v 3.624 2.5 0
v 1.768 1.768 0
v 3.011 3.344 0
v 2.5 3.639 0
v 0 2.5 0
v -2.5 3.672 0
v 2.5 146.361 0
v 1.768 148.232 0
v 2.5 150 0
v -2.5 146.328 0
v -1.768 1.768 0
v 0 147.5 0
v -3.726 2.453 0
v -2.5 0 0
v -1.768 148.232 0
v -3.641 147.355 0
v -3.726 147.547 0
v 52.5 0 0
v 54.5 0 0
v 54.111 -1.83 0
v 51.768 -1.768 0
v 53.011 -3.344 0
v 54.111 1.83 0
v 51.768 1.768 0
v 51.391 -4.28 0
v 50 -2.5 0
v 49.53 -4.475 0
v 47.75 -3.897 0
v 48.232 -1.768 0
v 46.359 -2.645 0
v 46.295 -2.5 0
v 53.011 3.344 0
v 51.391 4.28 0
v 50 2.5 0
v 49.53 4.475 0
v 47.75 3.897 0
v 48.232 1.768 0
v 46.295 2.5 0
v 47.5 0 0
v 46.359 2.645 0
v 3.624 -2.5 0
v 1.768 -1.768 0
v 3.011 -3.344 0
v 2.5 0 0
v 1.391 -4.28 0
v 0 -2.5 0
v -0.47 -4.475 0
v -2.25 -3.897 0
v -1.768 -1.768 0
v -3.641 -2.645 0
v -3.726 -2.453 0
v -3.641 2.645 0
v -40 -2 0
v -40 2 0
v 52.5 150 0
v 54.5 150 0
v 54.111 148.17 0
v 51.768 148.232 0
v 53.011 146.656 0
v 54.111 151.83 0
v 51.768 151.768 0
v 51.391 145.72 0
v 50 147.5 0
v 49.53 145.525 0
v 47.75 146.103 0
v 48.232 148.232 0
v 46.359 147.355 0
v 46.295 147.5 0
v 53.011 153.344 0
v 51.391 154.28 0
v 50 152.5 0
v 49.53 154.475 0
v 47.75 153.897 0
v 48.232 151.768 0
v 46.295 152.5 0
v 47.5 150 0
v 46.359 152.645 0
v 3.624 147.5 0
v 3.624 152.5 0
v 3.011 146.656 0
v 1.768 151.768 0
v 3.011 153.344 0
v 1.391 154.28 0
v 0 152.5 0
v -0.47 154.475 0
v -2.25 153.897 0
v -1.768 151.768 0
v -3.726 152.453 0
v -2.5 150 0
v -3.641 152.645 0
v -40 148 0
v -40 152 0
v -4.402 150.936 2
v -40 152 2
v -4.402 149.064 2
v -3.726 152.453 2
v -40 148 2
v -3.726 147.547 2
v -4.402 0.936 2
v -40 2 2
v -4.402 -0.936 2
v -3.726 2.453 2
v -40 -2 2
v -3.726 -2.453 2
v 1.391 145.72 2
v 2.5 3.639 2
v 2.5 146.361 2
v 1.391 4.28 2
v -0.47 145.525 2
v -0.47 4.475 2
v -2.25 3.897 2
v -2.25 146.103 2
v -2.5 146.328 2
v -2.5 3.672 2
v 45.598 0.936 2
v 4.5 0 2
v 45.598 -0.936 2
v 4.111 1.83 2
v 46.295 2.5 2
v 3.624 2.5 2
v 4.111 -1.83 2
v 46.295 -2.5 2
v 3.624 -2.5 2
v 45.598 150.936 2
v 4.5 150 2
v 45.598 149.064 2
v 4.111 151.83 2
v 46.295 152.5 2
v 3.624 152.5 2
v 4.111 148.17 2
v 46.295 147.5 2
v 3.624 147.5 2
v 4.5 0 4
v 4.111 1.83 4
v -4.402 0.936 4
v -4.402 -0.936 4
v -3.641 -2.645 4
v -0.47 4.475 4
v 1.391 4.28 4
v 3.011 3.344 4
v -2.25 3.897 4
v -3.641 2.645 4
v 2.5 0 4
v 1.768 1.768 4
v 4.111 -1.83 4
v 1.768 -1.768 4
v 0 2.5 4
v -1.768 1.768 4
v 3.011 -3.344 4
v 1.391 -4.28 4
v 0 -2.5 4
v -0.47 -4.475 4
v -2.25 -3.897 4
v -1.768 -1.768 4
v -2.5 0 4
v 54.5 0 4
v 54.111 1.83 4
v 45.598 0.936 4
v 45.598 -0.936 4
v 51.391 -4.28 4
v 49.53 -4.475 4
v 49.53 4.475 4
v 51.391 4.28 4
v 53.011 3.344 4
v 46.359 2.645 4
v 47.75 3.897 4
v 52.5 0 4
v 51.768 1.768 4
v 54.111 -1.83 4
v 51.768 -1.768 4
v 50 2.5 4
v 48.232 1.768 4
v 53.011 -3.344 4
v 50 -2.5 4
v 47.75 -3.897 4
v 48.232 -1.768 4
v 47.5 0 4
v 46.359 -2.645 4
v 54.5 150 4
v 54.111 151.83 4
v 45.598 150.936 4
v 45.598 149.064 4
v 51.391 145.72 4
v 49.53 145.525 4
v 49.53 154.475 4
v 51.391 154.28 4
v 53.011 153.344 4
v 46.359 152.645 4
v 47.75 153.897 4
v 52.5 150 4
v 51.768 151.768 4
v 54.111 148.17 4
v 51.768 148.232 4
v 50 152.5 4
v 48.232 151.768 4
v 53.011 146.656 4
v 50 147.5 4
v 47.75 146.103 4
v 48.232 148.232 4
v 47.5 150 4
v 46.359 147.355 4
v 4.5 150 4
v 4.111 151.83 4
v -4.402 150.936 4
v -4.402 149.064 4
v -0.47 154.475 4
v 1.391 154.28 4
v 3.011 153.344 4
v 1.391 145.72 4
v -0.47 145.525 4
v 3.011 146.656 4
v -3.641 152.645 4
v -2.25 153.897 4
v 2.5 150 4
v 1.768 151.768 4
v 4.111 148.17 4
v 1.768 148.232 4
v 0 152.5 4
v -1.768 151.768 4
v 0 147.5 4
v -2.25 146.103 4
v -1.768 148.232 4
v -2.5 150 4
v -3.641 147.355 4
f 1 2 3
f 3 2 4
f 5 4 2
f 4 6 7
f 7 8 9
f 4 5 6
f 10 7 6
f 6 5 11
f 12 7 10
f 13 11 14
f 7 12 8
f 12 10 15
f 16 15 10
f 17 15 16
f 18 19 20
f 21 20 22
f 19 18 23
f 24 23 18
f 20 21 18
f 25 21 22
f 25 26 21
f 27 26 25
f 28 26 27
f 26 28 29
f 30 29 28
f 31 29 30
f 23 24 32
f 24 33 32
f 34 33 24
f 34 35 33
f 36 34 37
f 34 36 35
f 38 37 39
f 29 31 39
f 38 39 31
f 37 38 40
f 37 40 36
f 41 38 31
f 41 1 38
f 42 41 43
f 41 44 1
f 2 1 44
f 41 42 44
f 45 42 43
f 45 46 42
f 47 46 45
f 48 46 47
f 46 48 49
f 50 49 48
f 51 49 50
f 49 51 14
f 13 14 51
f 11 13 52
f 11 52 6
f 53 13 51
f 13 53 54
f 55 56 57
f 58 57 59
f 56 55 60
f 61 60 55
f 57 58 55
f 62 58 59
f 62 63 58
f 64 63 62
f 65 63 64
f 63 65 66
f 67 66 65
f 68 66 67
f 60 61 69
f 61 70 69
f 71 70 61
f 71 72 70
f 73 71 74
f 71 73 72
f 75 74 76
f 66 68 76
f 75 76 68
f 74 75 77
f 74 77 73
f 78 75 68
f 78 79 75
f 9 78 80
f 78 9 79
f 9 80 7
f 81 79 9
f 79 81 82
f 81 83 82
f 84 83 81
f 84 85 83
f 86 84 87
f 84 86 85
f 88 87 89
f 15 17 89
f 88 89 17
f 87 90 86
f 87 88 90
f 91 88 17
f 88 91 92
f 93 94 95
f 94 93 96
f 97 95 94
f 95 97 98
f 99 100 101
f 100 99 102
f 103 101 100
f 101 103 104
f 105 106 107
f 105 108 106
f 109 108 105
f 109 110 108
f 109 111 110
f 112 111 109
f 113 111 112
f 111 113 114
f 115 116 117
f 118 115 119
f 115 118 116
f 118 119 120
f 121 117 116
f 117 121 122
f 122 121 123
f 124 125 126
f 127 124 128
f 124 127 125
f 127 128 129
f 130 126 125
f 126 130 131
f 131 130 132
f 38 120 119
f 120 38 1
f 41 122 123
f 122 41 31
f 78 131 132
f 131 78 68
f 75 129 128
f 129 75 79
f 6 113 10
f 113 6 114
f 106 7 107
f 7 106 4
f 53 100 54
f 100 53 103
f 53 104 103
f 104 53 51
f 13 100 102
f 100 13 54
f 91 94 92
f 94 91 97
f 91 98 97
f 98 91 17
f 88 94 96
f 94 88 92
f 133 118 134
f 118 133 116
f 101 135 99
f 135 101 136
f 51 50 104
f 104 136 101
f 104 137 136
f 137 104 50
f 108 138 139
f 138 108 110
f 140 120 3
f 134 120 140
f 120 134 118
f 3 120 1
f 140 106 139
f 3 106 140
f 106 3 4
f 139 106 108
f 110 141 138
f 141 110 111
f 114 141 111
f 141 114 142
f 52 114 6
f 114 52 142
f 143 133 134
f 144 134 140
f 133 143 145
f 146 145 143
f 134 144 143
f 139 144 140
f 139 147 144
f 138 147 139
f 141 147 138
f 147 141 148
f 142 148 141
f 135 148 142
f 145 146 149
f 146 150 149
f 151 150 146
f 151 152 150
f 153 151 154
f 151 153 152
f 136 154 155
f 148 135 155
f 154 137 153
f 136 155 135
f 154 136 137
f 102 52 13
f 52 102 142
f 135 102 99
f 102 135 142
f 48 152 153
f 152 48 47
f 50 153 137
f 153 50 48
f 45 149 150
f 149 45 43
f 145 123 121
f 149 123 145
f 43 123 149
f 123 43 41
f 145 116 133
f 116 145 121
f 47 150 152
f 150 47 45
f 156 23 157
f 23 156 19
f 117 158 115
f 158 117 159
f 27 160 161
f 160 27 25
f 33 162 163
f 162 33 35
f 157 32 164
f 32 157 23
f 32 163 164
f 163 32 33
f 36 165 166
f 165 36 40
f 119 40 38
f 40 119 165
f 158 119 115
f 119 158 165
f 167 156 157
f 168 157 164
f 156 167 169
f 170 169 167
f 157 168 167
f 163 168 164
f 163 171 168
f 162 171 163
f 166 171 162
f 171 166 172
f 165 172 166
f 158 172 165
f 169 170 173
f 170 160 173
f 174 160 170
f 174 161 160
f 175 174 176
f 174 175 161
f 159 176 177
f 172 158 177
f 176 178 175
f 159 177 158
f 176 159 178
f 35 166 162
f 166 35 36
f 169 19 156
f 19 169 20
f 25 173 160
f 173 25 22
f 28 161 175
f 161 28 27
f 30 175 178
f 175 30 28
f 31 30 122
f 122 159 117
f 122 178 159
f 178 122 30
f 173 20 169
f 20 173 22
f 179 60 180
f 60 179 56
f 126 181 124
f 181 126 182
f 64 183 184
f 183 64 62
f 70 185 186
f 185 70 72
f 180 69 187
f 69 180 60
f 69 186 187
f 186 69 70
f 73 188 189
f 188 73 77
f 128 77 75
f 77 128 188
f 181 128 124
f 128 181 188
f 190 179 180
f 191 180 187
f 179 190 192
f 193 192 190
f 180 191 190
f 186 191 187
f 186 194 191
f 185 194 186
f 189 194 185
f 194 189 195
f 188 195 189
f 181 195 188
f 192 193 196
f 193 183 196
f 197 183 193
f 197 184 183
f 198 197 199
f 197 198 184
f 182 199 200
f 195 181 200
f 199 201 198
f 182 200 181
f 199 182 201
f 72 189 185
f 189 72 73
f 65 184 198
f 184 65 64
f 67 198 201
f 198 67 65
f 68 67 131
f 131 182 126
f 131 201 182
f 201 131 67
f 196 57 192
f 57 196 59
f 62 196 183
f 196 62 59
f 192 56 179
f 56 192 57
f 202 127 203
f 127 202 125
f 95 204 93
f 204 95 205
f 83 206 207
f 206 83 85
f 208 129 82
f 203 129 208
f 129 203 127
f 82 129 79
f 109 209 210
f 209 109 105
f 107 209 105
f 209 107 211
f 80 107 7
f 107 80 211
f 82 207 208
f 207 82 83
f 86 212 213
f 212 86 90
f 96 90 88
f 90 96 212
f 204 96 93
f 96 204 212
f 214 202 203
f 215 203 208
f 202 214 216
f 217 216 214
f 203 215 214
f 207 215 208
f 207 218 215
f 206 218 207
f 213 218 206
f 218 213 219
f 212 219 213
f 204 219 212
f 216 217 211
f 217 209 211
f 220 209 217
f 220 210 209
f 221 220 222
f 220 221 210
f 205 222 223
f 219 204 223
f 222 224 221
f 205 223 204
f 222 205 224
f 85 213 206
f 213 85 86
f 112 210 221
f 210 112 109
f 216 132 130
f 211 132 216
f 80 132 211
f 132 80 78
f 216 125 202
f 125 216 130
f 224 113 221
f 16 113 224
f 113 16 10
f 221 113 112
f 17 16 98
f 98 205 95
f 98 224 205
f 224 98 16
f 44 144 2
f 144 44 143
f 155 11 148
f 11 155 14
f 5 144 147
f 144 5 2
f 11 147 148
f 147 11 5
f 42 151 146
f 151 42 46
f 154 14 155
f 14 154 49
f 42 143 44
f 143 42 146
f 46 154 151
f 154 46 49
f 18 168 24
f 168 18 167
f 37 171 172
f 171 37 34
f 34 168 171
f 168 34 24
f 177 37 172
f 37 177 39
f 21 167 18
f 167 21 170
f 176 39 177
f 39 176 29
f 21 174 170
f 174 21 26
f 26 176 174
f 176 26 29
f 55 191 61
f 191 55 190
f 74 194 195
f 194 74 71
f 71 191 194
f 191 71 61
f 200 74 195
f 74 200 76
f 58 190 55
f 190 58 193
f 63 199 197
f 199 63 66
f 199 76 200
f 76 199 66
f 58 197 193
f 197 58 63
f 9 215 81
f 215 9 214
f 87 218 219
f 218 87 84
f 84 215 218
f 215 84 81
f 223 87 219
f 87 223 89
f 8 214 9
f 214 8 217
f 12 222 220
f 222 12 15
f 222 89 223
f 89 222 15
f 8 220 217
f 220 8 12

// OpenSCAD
x_sep = 50;
y_sep = 150;

hole_dia = 5;
hole_rad = hole_dia/2;

side_spacer = 40;

wall=4;

template();

module template(){
	difference(){
		union(){
			hull(){
				cylinder(r=hole_rad, h=wall/2);
				translate([x_sep,0,0]) cylinder(r=hole_rad, h=wall/2);	
			}
            translate([0,y_sep,0]) hull(){
				cylinder(r=hole_rad, h=wall/2);
				translate([x_sep,0,0]) cylinder(r=hole_rad, h=wall/2);	
			}
			hull(){
				cylinder(r=hole_rad, h=wall/2);
				translate([0,y_sep,0]) cylinder(r=hole_rad, h=wall/2);
			}

			//side spacers
			hull(){
				cylinder(r=hole_rad, h=wall/2);
				translate([-side_spacer,-wall/2,0]) cube([wall,wall,wall/2]);
			}
			hull(){
				translate([0,y_sep,0]) cylinder(r=hole_rad, h=wall/2);
				translate([-side_spacer,y_sep-wall/2,0]) cube([wall,wall,wall/2]);
			}
		
			cylinder(r=hole_rad+wall/2, h=wall);
			translate([x_sep,0,0]) cylinder(r=hole_rad+wall/2, h=wall);
            translate([x_sep,y_sep,0]) cylinder(r=hole_rad+wall/2, h=wall);
			translate([0,y_sep,0]) cylinder(r=hole_rad+wall/2, h=wall);
		}
		
		translate([0,0,-.1]){
			cylinder(r=hole_rad, h=wall+1);
			translate([x_sep,0,0]) cylinder(r=hole_rad, h=wall+1);
            translate([x_sep,y_sep,0]) cylinder(r=hole_rad, h=wall+1);
			translate([0,y_sep,0]) cylinder(r=hole_rad, h=wall+1);
		}
	}
}
